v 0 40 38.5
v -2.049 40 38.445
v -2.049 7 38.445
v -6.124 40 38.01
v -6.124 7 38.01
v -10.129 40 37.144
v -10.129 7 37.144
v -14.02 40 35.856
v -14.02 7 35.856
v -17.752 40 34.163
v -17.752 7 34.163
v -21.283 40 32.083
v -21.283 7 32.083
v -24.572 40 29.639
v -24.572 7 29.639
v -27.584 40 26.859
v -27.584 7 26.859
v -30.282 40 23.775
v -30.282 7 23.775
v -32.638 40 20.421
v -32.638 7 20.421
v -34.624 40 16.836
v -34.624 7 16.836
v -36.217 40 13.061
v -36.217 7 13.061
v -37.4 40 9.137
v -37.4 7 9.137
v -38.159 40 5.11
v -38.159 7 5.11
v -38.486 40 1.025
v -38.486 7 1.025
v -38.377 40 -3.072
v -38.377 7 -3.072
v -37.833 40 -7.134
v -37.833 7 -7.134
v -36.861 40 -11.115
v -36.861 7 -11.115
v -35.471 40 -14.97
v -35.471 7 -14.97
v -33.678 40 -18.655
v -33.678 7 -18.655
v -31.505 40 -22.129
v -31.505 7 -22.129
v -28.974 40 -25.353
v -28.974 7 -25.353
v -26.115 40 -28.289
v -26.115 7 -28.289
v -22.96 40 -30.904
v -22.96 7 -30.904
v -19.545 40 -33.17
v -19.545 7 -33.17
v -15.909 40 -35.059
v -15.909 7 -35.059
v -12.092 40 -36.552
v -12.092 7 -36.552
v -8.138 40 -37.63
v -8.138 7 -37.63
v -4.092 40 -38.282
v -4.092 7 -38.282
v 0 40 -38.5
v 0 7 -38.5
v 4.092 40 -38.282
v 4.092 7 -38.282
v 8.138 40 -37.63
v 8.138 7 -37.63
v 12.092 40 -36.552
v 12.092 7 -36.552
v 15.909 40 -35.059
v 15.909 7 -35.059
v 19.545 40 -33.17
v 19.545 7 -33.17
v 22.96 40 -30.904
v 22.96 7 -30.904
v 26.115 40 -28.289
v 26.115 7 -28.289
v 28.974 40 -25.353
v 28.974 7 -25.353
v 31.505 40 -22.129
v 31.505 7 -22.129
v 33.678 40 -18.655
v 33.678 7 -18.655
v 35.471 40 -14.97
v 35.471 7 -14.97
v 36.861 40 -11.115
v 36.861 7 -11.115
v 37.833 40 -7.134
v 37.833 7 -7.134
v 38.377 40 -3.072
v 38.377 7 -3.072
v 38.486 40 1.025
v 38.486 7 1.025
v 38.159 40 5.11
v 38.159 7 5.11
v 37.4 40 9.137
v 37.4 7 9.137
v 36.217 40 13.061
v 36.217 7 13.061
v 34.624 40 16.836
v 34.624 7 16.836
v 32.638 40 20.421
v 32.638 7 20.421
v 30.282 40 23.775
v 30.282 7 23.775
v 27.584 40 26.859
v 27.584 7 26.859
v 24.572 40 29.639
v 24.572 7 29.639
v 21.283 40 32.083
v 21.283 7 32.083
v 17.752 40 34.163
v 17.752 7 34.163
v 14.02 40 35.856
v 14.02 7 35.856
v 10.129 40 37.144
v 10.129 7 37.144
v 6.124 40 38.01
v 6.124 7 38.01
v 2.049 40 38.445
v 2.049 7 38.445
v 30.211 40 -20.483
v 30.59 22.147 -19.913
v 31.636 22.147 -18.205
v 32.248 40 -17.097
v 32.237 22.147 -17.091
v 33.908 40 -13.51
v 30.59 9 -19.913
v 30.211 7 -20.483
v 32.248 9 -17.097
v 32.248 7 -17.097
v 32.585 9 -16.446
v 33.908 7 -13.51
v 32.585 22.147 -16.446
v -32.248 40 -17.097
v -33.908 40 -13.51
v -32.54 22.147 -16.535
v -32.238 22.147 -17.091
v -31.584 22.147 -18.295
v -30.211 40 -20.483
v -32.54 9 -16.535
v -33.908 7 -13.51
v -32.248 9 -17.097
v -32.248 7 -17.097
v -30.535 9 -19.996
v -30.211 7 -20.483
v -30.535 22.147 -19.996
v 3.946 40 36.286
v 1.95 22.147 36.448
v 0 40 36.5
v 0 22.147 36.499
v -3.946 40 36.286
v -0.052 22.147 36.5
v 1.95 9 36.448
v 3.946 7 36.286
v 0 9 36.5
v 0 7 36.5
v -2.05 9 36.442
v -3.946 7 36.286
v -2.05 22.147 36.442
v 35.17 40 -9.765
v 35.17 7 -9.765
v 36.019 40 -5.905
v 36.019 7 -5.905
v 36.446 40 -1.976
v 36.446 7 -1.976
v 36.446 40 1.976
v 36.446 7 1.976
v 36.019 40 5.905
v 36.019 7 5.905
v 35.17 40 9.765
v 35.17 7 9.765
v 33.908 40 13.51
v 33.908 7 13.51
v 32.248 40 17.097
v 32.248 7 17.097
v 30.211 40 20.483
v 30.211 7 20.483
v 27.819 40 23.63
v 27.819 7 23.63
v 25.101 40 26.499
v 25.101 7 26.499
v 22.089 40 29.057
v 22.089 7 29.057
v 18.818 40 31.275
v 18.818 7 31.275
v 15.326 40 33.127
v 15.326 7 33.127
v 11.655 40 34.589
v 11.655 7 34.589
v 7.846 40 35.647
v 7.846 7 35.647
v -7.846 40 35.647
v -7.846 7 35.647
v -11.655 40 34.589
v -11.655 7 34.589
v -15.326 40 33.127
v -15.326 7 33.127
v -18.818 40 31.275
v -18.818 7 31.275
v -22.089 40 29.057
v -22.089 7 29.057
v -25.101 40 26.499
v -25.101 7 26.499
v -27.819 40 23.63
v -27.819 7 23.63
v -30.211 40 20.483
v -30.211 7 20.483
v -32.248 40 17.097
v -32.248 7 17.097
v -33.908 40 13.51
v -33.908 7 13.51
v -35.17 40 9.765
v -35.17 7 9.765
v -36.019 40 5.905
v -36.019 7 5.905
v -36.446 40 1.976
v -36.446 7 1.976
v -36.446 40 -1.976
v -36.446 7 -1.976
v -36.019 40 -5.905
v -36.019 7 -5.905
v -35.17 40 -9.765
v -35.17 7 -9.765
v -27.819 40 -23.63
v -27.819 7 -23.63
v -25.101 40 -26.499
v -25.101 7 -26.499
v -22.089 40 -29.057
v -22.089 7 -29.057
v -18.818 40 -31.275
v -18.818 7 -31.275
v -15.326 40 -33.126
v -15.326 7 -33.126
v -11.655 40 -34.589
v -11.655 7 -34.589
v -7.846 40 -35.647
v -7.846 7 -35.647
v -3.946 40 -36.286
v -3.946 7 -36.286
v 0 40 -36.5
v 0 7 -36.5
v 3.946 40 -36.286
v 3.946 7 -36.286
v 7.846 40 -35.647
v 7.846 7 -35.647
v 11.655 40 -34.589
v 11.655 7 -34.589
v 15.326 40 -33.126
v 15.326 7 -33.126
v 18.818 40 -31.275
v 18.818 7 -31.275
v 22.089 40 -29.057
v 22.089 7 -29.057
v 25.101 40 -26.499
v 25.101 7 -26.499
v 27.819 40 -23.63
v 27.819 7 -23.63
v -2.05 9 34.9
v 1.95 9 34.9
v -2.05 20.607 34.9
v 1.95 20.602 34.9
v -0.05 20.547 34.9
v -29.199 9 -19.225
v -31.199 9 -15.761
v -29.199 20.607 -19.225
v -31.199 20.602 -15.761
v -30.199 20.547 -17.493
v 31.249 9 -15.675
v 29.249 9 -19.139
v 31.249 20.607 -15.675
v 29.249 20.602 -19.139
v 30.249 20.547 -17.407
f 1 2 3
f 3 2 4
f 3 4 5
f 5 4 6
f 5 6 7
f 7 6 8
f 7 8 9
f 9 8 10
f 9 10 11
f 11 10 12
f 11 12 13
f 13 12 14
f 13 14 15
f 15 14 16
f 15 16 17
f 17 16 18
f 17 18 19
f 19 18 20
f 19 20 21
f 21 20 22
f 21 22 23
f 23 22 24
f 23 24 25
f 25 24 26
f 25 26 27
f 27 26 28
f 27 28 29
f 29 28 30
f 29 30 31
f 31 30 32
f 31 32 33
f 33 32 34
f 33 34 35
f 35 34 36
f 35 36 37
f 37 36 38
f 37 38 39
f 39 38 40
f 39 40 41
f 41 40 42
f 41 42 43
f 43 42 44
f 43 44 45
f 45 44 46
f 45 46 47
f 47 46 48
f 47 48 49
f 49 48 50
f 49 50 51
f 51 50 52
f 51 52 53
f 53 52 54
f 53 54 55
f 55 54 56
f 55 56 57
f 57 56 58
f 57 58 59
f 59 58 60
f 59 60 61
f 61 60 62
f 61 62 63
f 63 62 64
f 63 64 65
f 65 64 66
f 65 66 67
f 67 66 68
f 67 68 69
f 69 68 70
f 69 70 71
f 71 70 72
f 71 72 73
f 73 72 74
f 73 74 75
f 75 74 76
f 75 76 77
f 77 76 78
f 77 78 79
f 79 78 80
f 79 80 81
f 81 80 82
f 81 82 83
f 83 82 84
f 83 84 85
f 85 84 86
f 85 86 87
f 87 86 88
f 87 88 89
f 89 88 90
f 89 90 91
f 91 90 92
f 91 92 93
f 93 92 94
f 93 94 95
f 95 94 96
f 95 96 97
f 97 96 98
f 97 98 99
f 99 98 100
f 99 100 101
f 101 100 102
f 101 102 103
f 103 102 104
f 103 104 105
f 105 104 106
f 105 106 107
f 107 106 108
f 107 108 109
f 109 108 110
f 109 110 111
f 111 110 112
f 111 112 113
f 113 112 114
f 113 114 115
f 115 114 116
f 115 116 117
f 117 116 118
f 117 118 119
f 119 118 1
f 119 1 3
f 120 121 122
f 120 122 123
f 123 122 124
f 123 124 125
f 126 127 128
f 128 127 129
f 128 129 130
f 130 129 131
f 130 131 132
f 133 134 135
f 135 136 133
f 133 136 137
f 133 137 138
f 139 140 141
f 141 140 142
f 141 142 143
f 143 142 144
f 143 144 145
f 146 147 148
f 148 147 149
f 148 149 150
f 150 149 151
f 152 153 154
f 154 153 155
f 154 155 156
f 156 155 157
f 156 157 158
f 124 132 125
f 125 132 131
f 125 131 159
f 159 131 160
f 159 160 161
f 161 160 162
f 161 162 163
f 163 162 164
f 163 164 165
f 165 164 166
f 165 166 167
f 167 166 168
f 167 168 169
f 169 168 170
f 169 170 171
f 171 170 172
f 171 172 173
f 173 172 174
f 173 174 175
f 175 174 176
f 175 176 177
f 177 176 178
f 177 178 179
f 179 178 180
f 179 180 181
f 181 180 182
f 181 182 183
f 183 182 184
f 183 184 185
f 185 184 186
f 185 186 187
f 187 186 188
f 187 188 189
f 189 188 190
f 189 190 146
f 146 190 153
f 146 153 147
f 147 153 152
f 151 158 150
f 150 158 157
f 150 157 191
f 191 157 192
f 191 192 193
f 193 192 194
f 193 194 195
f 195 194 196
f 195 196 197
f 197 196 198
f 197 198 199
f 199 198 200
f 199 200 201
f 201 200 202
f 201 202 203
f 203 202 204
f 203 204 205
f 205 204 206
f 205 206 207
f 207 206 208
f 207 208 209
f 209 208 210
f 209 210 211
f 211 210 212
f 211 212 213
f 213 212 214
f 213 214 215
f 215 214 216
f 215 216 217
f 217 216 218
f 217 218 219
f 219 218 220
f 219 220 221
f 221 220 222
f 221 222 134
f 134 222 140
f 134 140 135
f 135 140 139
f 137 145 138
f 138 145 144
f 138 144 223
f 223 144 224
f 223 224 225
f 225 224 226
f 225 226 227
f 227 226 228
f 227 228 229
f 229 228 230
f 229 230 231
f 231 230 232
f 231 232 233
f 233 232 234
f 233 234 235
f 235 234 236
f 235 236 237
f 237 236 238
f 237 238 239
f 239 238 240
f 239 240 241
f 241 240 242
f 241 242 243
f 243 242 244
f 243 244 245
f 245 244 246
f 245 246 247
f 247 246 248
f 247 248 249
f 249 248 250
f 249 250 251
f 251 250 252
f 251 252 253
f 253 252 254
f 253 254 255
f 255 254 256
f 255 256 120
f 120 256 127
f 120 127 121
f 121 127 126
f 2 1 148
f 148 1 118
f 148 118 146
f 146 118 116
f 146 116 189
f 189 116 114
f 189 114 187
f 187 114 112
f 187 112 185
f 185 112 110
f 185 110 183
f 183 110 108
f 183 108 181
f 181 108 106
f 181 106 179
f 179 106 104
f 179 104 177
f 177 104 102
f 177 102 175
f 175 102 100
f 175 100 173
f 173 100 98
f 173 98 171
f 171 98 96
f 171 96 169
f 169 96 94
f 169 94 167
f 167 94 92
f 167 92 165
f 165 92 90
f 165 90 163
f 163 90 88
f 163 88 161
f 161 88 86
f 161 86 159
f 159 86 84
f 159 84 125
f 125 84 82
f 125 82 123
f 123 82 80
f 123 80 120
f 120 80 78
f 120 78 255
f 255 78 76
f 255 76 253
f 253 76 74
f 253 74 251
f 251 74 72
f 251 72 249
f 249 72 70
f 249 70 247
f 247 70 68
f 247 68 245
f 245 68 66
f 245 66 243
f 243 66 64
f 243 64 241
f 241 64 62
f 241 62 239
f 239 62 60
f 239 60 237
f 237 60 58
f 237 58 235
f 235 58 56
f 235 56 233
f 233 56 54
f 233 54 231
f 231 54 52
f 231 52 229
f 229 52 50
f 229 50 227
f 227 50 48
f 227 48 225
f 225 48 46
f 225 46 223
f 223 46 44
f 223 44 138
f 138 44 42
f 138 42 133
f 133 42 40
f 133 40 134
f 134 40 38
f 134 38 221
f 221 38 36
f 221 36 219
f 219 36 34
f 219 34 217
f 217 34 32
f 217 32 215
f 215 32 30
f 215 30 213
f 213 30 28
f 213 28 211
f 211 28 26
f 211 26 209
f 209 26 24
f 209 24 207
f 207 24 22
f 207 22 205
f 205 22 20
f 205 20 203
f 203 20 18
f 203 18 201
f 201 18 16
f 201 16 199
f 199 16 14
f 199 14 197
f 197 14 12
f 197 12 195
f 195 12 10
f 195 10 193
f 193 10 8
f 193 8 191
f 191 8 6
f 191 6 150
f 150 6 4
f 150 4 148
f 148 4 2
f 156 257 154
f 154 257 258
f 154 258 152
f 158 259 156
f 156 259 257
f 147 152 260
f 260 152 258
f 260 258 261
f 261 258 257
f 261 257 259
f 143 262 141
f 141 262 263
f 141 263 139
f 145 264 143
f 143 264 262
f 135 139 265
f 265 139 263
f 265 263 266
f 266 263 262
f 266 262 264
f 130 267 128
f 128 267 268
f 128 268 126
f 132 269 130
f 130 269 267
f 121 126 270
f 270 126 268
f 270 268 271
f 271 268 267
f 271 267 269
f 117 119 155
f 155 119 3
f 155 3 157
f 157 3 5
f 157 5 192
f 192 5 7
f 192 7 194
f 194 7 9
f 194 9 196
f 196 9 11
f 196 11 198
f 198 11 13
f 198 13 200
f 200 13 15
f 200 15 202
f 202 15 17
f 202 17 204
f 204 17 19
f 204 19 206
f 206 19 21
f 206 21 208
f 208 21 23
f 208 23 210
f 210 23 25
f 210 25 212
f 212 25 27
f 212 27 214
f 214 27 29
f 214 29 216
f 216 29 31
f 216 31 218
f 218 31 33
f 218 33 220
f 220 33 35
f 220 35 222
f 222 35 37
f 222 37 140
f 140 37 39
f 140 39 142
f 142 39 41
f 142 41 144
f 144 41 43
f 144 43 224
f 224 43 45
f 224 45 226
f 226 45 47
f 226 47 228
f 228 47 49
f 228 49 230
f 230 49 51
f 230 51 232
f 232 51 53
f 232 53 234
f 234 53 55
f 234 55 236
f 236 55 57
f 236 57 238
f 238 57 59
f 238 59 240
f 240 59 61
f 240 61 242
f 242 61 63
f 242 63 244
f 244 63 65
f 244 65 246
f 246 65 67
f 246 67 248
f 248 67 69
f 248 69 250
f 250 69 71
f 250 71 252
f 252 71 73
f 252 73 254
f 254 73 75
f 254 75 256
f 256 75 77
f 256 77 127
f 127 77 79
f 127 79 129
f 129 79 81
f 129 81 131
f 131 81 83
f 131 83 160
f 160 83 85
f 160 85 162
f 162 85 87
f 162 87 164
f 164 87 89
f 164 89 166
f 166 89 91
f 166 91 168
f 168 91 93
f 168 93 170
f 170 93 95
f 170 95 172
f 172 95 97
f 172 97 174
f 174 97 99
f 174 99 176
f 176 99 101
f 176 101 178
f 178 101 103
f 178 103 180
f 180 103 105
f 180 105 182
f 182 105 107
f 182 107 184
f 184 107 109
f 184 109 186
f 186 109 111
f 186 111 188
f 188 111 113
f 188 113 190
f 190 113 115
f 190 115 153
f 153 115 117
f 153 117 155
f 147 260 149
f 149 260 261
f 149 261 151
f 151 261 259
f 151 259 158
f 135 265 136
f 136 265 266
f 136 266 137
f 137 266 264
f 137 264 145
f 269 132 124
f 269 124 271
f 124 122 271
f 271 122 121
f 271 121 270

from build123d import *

# Parameters (mm, degrees)
SKETCH_1_R               = 38.5
SKETCH_1_R_2             = 36.5
EXTRUDE_1_DEPTH          = 40
EXTRUDE_3_DEPTH          = 1.6
PATTERN_CIRCULAR_1_COUNT = 3
SKETCH_3_R               = 52.927820275
CUT_EXTRUDE_1_DEPTH      = 7
CHAMFER_1_SIZE           = 1.7


with BuildPart() as part:
    # Эскиз1 → Бобышка-Вытянуть1 (new body)
    with BuildSketch(Plane(origin=(0, 0, 0), x_dir=(1, 0, 0), z_dir=(0, 1, 0))):
        with Locations(Location((0, 0, 0), (0, 0, 270))):
            Circle(SKETCH_1_R)
        with Locations(Location((0, 0, 0), (0, 0, 270))):
            Circle(SKETCH_1_R_2, mode=Mode.SUBTRACT)
    extrude(amount=EXTRUDE_1_DEPTH)

    # Эскиз2 → Бобышка-Вытянуть3 (add)
    with BuildSketch(Plane.XY.offset(36.5)):
        Polygon((1.95, 20.447072268), (-0.95, 20.447072268), (-2.05, 20.447072268), (-2.05, 9), (1.95, 9), align=None)
    extrude_3 = extrude(amount=-EXTRUDE_3_DEPTH)

    # Круговой массив1: Бобышка-Вытянуть3 ×3 about axis
    pattern_circular_1_axis = Axis((0, 0, 0), (0, 1, 0))
    for i in range(1, PATTERN_CIRCULAR_1_COUNT):
        add(extrude_3.rotate(pattern_circular_1_axis, i * 360 / PATTERN_CIRCULAR_1_COUNT))

    # Эскиз3 → Вырез-Вытянуть1 (cut)
    with BuildSketch(Plane.XZ):
        Circle(SKETCH_3_R)
    extrude(amount=-CUT_EXTRUDE_1_DEPTH, mode=Mode.SUBTRACT)

    # Фаска1
    # the kernel refuses this chamfer: 1.7 mm, written as the material it adds along each edge
    with BuildSketch(Plane(origin=(0, 20.447072268, 0), x_dir=(0, 0, 1), z_dir=(1, 0, 0))) as chamfer_1_piece_1_section:
        Polygon((36.5, -CHAMFER_1_SIZE), (36.5 - CHAMFER_1_SIZE, 0), (36.5, 0), align=None)
    chamfer_1_piece_1 = revolve(axis=Axis((0, 20.447072268, 0), (0, -1, 0)), revolution_arc=10.082397384, mode=Mode.PRIVATE)
    chamfer_1_piece_1 = split(chamfer_1_piece_1, bisect_by=Plane(origin=(-2.05, 21.014554038, 35.932884204), z_dir=(1, 0, 0)), keep=Keep.TOP, mode=Mode.PRIVATE)
    chamfer_1_piece_1 = split(chamfer_1_piece_1, bisect_by=Plane(origin=(-1.024016217, 21.014554038, 34.9), z_dir=(0, 0, 1)), keep=Keep.TOP, mode=Mode.PRIVATE)
    add(chamfer_1_piece_1)
    with BuildSketch(Plane(origin=(0, 20.447072268, 0), x_dir=(-0.9392452885856895, 0, -0.3432466866112253), z_dir=(-0.3432466866112253, 0, 0.9392452885856895))) as chamfer_1_piece_2_section:
        Polygon((36.5, -CHAMFER_1_SIZE), (36.5 - CHAMFER_1_SIZE, 0), (36.5, 0), align=None)
    chamfer_1_piece_2 = revolve(axis=Axis((0, 20.447072268, 0), (0, -1, 0)), revolution_arc=20.007603595, mode=Mode.PRIVATE)
    chamfer_1_piece_2 = split(chamfer_1_piece_2, bisect_by=Plane(origin=(-32.094466273, 21.014490137, -16.278082692), z_dir=(0.5000000000000004, 0, -0.8660254037844384)), keep=Keep.TOP, mode=Mode.PRIVATE)
    chamfer_1_piece_2 = split(chamfer_1_piece_2, bisect_by=Plane(origin=(-30.094466273, 21.014490137, -19.742184307), z_dir=(-0.5000000000000004, 0, 0.8660254037844384)), keep=Keep.TOP, mode=Mode.PRIVATE)
    chamfer_1_piece_2 = split(chamfer_1_piece_2, bisect_by=Plane(origin=(-30.199383778, 21.014490137, -17.493132939), z_dir=(-0.8660254037844384, 0, -0.5000000000000004)), keep=Keep.TOP, mode=Mode.PRIVATE)
    add(chamfer_1_piece_2)
    with BuildSketch(Plane(origin=(0, 20.447072268, 0), x_dir=(0.7668829946630015, 0, -0.6417869369944413), z_dir=(-0.6417869369944413, 0, -0.7668829946630015))) as chamfer_1_piece_3_section:
        Polygon((36.5, -CHAMFER_1_SIZE), (36.5 - CHAMFER_1_SIZE, 0), (36.5, 0), align=None)
    chamfer_1_piece_3 = revolve(axis=Axis((0, 20.447072268, 0), (0, -1, 0)), revolution_arc=20.007603595, mode=Mode.PRIVATE)
    chamfer_1_piece_3 = split(chamfer_1_piece_3, bisect_by=Plane(origin=(30.144466273, 21.014490137, -19.655581767), z_dir=(0.49999999999999983, 0, 0.8660254037844388)), keep=Keep.TOP, mode=Mode.PRIVATE)
    chamfer_1_piece_3 = split(chamfer_1_piece_3, bisect_by=Plane(origin=(32.144466273, 21.014490137, -16.191480152), z_dir=(-0.49999999999999983, 0, -0.8660254037844388)), keep=Keep.TOP, mode=Mode.PRIVATE)
    chamfer_1_piece_3 = split(chamfer_1_piece_3, bisect_by=Plane(origin=(30.249189406, 21.014490137, -17.406867061), z_dir=(0.8660254037844388, 0, -0.49999999999999983)), keep=Keep.TOP, mode=Mode.PRIVATE)
    add(chamfer_1_piece_3)
    with BuildSketch(Plane(origin=(0, 20.447072268, 0), x_dir=(0.17236211792697714, 0, 0.9850336544015776), z_dir=(0.9850336544015776, 0, -0.17236211792697714))) as chamfer_1_piece_4_section:
        Polygon((36.5, -CHAMFER_1_SIZE), (36.5 - CHAMFER_1_SIZE, 0), (36.5, 0), align=None)
    chamfer_1_piece_4 = revolve(axis=Axis((0, 20.447072268, 0), (0, -1, 0)), revolution_arc=9.925186074, mode=Mode.PRIVATE)
    chamfer_1_piece_4 = split(chamfer_1_piece_4, bisect_by=Plane(origin=(1.95, 21.014422977, 35.934484575), z_dir=(-1, 0, 0)), keep=Keep.TOP, mode=Mode.PRIVATE)
    chamfer_1_piece_4 = split(chamfer_1_piece_4, bisect_by=Plane(origin=(0.974165445, 21.014422977, 34.9), z_dir=(0, 0, 1)), keep=Keep.TOP, mode=Mode.PRIVATE)
    add(chamfer_1_piece_4)


solid = part.part
